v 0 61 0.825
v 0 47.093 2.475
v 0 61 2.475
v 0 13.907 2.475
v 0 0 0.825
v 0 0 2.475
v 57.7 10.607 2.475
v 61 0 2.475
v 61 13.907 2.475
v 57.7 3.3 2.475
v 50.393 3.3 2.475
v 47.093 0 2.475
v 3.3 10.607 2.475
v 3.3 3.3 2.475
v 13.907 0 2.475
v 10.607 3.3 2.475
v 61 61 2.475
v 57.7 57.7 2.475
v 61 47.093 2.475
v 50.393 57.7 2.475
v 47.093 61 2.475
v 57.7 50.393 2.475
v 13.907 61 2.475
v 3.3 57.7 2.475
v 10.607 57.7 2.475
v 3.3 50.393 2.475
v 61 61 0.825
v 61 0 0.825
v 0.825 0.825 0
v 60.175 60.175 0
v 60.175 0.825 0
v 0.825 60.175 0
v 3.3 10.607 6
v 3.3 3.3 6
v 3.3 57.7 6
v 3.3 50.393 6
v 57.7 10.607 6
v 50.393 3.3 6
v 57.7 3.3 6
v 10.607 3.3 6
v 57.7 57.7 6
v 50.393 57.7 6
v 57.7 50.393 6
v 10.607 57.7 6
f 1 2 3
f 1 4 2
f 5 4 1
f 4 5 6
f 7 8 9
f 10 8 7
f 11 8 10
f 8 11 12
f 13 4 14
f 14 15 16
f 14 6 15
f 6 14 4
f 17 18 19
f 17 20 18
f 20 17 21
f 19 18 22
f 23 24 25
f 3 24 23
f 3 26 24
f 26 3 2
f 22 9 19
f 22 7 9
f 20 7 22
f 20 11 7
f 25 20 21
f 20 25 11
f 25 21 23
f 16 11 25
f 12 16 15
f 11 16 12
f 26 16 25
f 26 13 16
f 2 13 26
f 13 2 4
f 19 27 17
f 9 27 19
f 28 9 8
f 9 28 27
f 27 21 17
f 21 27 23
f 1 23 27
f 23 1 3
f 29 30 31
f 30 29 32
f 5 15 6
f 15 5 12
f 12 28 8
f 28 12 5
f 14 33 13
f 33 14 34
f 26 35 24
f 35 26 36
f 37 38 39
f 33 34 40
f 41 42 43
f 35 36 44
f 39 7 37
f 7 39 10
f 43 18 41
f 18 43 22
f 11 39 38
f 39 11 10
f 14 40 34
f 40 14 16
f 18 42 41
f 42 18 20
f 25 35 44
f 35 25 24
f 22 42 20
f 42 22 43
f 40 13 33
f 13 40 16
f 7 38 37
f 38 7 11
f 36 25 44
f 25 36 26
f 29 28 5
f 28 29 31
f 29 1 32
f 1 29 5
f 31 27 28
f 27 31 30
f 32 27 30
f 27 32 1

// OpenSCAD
// file: settings.scad
cube_width=30;
cube_height=16;
cube_thickness=3.3;

cap_width=30;
cap_height=6;
cap_thickness=3.3;

glyph_depth=0.7;
glyph_thickness=1.5;

photo_resitor_hole_r = 2.4;
spring_contact_hole_r = 3.1;
// main file
include <settings.scad>

module cap_2x2(width, height, thickness)
{
    width2 = 2*width + 1;
    width1=(width+thickness)*2;
    difference()
    {
        union()
        {
            cube([width2, width2, thickness*3/4]);
            translate([thickness,thickness,0])cube([width2-2*thickness, width2-2*thickness, height]);
        }
        union()
        {
            translate([width2/2,width2/2,0])rotate([0,0,45])translate([-width1/2,-width1/2,thickness*3/4]) cube([width1,width1,height]);
                        //corners
            translate([0,0.25*thickness,0])rotate([45,0,0]) translate([-0.5*width2, -width2, -0.5*height]) cube([2*width2, width2, 2*height]);
            translate([0.25*thickness,0,0]) rotate([0,-45,0]) translate([-width2, -0.5*width2, -0.5*height]) cube([width2, 2*width2, 2*height]);
            translate([width2-0.25*thickness,0,0]) rotate([0,45,0]) translate([0, 0, -0.5*height]) cube([width2, 2*width2, 2*height]);
            translate([0,width2-0.25*thickness,0]) rotate([-45,0,0]) translate([-0.5*width2, 0, -0.5*height]) cube([2*width2, width2, 2*height]);
        }
    }
}

cap_2x2(cap_width, cap_height, cap_thickness);
